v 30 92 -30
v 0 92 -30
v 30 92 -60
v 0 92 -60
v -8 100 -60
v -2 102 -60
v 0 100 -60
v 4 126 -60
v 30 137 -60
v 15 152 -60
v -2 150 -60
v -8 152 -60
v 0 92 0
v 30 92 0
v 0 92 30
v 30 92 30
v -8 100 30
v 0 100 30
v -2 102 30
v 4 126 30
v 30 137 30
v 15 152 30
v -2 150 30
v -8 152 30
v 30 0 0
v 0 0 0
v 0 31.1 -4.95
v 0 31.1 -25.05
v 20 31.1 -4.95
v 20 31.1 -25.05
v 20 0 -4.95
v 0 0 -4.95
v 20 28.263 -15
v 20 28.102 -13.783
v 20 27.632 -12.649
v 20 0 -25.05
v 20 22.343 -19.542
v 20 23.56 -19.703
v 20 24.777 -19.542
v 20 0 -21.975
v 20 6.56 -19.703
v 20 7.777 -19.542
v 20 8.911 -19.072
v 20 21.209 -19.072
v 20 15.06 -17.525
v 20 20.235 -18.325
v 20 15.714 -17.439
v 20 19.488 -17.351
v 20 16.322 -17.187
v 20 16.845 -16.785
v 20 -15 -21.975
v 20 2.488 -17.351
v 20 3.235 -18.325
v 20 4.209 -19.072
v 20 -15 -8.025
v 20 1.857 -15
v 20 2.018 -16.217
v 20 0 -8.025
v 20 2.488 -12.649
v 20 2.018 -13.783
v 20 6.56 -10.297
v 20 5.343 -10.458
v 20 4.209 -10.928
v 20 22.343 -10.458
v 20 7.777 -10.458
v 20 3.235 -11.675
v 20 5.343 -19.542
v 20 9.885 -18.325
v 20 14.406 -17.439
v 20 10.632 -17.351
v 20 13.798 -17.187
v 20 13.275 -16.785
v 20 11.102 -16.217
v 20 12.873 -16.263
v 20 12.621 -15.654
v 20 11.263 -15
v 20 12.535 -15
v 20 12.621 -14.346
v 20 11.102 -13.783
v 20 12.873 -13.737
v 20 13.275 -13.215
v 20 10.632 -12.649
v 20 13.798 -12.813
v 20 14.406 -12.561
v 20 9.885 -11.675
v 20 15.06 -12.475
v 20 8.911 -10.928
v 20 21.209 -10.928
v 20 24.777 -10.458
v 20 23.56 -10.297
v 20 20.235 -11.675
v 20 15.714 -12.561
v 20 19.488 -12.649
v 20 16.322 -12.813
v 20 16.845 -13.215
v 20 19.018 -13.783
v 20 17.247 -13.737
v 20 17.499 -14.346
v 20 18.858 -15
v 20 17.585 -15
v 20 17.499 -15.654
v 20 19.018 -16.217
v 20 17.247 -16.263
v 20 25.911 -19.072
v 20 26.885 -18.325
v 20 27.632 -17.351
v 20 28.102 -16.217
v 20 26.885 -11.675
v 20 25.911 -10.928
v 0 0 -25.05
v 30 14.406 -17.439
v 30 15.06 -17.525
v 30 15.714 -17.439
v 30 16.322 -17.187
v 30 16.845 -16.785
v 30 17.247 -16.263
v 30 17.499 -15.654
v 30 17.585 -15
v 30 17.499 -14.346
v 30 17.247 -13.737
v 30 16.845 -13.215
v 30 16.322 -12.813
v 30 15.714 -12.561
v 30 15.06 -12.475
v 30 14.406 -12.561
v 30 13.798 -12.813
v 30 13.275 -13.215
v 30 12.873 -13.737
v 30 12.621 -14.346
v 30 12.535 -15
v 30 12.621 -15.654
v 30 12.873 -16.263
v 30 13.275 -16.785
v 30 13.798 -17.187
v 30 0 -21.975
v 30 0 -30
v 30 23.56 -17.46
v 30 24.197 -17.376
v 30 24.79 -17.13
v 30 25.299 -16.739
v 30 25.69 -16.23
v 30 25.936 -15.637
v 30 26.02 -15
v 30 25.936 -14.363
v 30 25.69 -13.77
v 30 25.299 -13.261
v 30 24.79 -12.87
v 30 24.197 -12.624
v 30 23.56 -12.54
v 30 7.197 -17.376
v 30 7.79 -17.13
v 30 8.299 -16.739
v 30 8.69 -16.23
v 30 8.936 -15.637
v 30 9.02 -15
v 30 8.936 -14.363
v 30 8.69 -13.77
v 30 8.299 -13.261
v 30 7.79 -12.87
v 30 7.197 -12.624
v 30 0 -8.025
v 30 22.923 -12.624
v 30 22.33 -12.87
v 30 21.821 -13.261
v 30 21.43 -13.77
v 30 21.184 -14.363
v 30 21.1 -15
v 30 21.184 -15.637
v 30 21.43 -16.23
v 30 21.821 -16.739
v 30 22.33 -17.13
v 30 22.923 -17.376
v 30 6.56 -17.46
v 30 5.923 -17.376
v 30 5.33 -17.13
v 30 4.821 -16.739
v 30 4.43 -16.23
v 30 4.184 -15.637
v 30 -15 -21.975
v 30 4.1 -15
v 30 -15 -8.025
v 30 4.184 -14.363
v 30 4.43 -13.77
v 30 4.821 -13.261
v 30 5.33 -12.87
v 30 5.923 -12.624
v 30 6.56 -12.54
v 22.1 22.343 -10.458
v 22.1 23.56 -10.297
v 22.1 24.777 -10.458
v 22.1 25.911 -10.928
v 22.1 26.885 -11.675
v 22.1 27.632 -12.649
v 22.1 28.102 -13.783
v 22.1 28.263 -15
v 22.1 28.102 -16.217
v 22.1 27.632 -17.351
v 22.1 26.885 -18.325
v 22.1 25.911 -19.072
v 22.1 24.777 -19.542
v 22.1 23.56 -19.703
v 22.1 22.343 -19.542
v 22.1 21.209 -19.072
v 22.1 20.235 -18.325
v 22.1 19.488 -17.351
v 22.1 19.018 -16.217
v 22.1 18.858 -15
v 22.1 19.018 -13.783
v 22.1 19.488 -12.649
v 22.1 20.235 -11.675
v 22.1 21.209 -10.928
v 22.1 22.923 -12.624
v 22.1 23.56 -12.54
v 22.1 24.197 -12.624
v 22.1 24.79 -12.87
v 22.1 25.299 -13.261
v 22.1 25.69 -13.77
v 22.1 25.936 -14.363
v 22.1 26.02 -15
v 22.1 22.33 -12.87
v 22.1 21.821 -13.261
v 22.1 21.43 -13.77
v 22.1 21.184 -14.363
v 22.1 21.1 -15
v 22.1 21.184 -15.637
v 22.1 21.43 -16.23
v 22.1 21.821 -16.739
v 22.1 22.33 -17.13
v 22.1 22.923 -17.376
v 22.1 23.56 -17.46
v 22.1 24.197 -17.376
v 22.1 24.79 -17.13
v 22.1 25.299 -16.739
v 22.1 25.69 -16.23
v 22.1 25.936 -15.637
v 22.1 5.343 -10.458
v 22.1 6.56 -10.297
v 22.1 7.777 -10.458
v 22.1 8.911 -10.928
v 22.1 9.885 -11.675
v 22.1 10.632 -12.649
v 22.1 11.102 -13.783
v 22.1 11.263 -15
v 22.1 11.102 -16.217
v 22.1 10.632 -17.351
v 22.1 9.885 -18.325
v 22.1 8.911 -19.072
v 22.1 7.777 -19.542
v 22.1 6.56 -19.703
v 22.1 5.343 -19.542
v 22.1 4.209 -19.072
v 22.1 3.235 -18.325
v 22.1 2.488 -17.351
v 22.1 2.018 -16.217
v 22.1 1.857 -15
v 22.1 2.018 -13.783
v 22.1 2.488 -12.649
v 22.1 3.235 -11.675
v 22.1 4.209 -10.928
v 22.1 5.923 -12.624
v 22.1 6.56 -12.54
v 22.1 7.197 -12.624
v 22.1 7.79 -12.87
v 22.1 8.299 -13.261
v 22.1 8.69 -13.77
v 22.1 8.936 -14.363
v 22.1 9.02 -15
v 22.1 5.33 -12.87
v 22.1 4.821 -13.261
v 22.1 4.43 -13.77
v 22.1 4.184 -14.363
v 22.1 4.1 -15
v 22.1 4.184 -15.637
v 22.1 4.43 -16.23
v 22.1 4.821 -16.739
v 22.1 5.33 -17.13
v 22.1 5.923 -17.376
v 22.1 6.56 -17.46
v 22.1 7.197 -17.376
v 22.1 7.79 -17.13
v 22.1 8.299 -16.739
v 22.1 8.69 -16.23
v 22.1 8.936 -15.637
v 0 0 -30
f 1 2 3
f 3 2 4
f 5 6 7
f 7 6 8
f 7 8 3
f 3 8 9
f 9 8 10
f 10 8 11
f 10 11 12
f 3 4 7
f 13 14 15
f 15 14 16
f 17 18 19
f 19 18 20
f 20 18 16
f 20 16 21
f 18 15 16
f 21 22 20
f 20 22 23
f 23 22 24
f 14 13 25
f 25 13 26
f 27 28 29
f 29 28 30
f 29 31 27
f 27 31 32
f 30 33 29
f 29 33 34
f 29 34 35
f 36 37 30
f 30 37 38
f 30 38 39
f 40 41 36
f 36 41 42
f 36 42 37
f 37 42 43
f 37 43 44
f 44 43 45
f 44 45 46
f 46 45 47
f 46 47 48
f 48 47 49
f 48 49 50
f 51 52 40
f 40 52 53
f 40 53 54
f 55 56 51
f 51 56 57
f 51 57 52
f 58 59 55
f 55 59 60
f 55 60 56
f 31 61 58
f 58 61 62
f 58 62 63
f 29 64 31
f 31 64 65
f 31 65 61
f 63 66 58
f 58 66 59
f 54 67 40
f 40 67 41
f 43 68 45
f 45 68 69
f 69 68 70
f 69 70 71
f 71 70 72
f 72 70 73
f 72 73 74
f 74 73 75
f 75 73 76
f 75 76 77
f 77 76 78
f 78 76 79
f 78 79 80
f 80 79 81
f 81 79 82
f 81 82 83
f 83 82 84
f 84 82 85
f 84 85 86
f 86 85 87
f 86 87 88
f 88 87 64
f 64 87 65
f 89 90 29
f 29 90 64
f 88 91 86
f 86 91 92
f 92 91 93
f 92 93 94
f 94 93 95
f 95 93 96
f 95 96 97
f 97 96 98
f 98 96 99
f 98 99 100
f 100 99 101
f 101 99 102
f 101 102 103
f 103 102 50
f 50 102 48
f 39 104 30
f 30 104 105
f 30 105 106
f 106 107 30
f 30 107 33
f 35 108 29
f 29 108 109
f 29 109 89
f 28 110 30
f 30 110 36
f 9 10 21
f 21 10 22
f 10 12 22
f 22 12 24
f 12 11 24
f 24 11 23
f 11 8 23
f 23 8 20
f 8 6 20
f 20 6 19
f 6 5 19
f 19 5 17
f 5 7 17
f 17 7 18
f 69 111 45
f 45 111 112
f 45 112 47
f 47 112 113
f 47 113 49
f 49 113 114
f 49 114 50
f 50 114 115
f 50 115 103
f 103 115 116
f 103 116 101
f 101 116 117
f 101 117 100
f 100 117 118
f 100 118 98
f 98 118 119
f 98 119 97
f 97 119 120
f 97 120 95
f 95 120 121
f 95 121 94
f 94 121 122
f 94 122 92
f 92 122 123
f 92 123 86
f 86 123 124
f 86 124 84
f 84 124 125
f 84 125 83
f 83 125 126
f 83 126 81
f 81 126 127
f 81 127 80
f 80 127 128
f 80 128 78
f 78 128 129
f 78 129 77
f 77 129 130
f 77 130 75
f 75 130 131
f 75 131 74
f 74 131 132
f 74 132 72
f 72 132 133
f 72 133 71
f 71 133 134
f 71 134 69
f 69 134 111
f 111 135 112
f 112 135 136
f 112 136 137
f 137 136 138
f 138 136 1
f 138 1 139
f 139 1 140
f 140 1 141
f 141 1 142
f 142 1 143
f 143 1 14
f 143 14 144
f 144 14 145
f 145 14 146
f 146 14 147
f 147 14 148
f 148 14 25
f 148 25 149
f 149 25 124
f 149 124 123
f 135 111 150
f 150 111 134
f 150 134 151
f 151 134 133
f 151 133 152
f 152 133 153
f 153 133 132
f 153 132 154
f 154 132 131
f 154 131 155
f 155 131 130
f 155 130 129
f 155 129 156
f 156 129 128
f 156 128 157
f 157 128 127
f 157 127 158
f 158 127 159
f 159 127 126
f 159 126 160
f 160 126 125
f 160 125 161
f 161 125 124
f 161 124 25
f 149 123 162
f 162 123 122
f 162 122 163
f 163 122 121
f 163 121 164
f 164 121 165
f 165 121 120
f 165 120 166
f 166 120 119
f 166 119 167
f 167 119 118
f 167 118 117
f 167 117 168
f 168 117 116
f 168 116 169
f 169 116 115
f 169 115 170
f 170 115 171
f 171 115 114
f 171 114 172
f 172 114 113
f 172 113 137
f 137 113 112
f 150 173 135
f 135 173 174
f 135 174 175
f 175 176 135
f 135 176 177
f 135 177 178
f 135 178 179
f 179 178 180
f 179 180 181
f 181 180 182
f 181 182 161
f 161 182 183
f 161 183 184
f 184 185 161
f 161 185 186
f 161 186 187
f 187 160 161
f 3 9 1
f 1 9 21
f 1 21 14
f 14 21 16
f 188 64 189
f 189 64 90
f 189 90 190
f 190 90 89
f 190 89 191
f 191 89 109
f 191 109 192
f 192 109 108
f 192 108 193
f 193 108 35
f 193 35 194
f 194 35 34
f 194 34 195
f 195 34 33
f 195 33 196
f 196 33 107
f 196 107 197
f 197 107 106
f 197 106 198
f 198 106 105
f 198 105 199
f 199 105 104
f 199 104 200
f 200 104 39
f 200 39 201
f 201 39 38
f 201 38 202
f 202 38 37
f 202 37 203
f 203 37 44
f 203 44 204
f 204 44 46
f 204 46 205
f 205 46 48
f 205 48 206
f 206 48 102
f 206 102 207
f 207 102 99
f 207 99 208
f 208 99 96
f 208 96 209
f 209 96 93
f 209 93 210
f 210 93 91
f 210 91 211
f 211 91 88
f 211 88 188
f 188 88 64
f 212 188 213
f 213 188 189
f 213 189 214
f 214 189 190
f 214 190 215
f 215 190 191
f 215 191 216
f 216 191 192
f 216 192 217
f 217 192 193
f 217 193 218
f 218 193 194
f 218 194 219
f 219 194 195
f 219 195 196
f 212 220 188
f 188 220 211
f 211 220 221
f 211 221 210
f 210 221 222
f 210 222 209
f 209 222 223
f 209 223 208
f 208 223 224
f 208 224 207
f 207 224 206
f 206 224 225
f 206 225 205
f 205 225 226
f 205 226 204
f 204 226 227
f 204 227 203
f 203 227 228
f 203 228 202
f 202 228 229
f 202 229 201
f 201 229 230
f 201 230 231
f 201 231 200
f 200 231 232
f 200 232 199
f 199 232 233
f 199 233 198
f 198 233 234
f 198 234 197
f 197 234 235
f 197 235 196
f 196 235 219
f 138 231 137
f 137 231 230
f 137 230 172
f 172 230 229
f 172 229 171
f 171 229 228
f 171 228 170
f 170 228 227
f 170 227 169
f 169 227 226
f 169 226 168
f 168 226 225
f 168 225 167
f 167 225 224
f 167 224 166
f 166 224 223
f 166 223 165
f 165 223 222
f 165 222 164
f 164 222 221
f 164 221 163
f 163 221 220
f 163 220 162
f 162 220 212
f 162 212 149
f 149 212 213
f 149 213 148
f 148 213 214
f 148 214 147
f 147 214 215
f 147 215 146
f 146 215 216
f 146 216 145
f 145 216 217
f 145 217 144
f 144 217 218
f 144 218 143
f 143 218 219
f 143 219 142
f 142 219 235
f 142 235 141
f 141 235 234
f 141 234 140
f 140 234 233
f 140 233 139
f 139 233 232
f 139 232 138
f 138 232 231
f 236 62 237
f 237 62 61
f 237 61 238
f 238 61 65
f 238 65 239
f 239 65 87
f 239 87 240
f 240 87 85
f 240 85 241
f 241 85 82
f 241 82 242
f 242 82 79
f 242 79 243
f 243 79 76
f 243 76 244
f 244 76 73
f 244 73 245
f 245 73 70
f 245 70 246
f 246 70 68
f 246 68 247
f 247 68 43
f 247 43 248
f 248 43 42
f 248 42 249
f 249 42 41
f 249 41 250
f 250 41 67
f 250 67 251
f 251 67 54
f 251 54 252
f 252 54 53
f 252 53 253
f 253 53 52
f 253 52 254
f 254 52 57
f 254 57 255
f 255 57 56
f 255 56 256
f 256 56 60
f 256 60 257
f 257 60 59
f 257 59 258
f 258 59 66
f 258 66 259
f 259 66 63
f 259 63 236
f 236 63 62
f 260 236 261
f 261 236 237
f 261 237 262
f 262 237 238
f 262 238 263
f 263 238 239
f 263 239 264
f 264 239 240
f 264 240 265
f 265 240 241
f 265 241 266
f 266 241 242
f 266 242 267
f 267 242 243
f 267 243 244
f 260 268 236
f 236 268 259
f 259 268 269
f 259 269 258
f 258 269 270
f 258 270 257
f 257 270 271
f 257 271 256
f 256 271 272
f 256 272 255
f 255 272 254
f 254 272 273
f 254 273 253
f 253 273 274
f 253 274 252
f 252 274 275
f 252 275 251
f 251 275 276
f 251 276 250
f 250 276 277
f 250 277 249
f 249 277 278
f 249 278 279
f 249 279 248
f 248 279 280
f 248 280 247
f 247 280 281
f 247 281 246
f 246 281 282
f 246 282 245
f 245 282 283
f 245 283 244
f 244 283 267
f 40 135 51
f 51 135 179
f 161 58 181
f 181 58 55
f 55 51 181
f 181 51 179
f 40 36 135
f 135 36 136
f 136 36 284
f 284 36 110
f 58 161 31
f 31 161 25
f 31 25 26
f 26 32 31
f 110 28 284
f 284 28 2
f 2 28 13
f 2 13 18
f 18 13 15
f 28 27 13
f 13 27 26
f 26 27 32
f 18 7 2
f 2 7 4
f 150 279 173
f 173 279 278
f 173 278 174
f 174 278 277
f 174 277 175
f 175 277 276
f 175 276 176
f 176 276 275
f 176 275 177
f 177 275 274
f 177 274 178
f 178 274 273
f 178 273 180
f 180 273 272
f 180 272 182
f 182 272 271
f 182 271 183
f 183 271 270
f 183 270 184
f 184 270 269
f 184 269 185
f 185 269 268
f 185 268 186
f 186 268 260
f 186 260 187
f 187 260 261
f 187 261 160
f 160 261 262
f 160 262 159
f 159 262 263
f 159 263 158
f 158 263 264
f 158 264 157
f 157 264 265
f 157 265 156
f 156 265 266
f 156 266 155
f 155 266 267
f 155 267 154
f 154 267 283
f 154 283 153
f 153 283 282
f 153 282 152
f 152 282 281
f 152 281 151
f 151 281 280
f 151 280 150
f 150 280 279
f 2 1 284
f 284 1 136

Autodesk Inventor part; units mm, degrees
ref_plane "YZ Plane" through (0, 0, 0) normal (1, 0, 0) x (0, 1, 0)
ref_plane "XZ Plane" through (0, 0, 0) normal (0, 1, 0) x (-1, 0, 0)
sketch "Sketch1" plane through (0, 0, 0) normal (0, 0, 1) x (1, 0, 0)
  line L0 (0, 0) -> (25, 0)
  line L1 (25, 0) -> (25, 40)
  line L2 (25, 40) -> (0, 40)
  line L3 (0, 40) -> (0, 0)
  dimension "d1" = 25
  dimension "d2" = 40
  dimension "d3" = 25
extrude "Extrusion1" add sketch "Sketch1" against normal blind 30
sketch "Sketch2" plane through (25, 0, 0) normal (1, 0, 0) x (0, 0, -1)
  line L0 (0, 0) -> (30, 0) projected
  circle A0 centre (15, 6.56) radius 2.46
extrude "Extrusion2" cut sketch "Sketch2" against normal blind 30
sketch "Sketch3" plane through (0, 0, 0) normal (-1, 0, 0) x (0, 0, 1)
  line L0 (0, 0) -> (-30, 0) projected
  line L1 (-25.05, 0) -> (-4.95, 0)
  line L2 (-4.95, 0) -> (-4.95, 33.12)
  line L3 (-4.95, 33.12) -> (-25.05, 33.12)
  line L4 (-25.05, 33.12) -> (-25.05, 0)
  dimension "d11" = 20.1
extrude "Extrusion3" cut sketch "Sketch3" against normal blind 20
sketch "Sketch4" plane through (0, 0, 0) normal (0, -1, 0) x (1, 0, 0)
  line L0 (20, -4.95) -> (20, -25.05) projected
  line L1 (20, -15) -> (25, -15)
  line L2 (25, 0) -> (25, -30) projected
  line L3 (20, -8.025) -> (25, -8.025)
  line L4 (25, -8.025) -> (25, -21.975)
  line L5 (25, -21.975) -> (20, -21.975)
  line L6 (20, -21.975) -> (20, -8.025)
  line L7 (20, -8.025) -> (25, -21.975) construction
  line L8 (25, -8.025) -> (20, -21.975) construction
  line L9 (25, -12.54) -> (25, -17.46) projected
  point P0 (0, 0)
  point P1 (22.5, -15)
  dimension "d14" = 13.95
extrude "Extrusion4" add sketch "Sketch4" along normal blind 15
sketch "Sketch5" plane through (20, 0, 0) normal (-1, 0, 0) x (0, 0, 1)
  circle A0 centre (-15, 6.56) radius 2.46 projected
  circle A1 centre (-15, 6.56) radius 4.7025
  circle A2 centre (-15, 6.56) radius 2.46 projected
  circle A3 centre (-15, 6.56) radius 2.46
  point P0 (0, 0)
  dimension "d17" = 9.405
extrude "Extrusion5" cut sketch "Sketch5" against normal blind 2.1
sketch "Sketch6" plane through (25, 0, 0) normal (1, 0, 0) x (0, 0, -1)
  circle A0 centre (15, 6.56) radius 4.7025 projected
  line L0 (15, 6.56) -> (15, 23.56)
  circle A1 centre (15, 23.56) radius 2.46
  point P0 (0, 0)
  dimension "d20" = 17
  dimension "d21" = 4.92
extrude "Extrusion6" cut sketch "Sketch6" against normal blind 10 contours A1
sketch "Sketch7" plane through (20, 0, 0) normal (-1, 0, 0) x (0, 0, 1)
  circle A0 centre (-15, 23.56) radius 2.46 projected
  circle A1 centre (-15, 23.56) radius 4.7025
  point P0 (0, 0)
  dimension "d24" = 9.405
extrude "Extrusion7" cut sketch "Sketch7" against normal blind 2.1
sketch "Sketch9" plane through (25, 0, 0) normal (1, 0, 0) x (0, 0, -1)
  circle A0 centre (15, 6.56) radius 2.46 projected
  circle A1 centre (15, 6.56) radius 2.46
  circle A2 centre (15, 23.56) radius 2.46 projected
  circle A3 centre (15, 23.56) radius 2.46
  line L0 (30, 40) -> (30, 0) projected
  line L1 (30, 0) -> (30, 40)
  line L2 (30, 40) -> (0, 40)
  line L3 (0, 40) -> (0, 0)
  line L4 (0, 0) -> (8.025, 0) projected
  line L5 (21.975, 0) -> (21.975, -15)
  line L6 (21.975, -15) -> (8.025, -15)
  line L7 (8.025, -15) -> (8.025, 0)
  line L8 (0, 0) -> (8.025, 0)
  line L9 (21.975, 0) -> (30, 0)
extrude "Extrusion8" add sketch "Sketch9" along normal blind 5
sketch "Sketch10" plane through (0, 40, 0) normal (0, 1, 0) x (1, 0, 0)
  line L0 (0, 30) -> (30, 30) projected
  line L1 (30, 0) -> (0, 0) projected
  line L2 (0, 30) -> (30, 30)
  line L3 (30, 30) -> (30, 0)
  line L4 (30, 0) -> (0, 0)
  line L5 (0, 0) -> (0, 30)
extrude "Extrusion9" add sketch "Sketch10" along normal blind 30
sketch "Sketch12" plane through (30, 0, 0) normal (1, 0, 0) x (0, 0, -1)
  circle A0 centre (15, 6.56) radius 2.46 projected
  line L0 (15, 6.56) -> (15, 15.06)
  circle A1 centre (15, 15.06) radius 2.525
  point P0 (0, 0)
  dimension "d31" = 8.5
  dimension "d33" = 5.05
extrude "Extrusion10" cut sketch "Sketch12" against normal blind 30 contours A1
sketch "Sketch14" plane through (0, 0, 0) normal (0, 0, 1) x (1, 0, 0)
  line L0 (30, 70) -> (0, 70) projected
  line L1 (0, 100) -> (-8, 100)
  line L2 (30, 0) -> (30, 70) projected
  line L3 (30, 118) -> (30, 70)
  line L4 (30, 105) -> (30, 100)
  line L5 (0, 70) -> (30, 70) projected
  line L6 (0, 70) -> (0, 100)
  line L7 (30, 122.5) -> (30, 118)
  line L8 (-2, 150) -> (-8, 152)
  line L9 (-2, 102) -> (-8, 100)
  line L10 (-2, 102) -> (4, 126)
  line L11 (4, 126) -> (-2, 150)
  line L12 (-8, 152) -> (15, 152)
  line L13 (30, 137) -> (15, 152)
  line L14 (30, 122.5) -> (30, 137)
  point P0 (0, 0)
  dimension "d47" = 30
extrude "Extrusion12" add sketch "Sketch14" against normal blind 30
sketch "Sketch15" plane through (0, 0, -25.05) normal (-1, 0, 0) x (0, 0, 1)
  line L0 (0, 33.12) -> (20.1, 33.12) projected
  line L1 (20.1, 33.12) -> (20.1, 0) projected
  line L2 (0, 33.12) -> (20.1, 33.12)
  line L3 (20.1, 33.12) -> (20.1, 31.1)
  line L4 (20.1, 31.1) -> (0, 31.1)
  line L5 (0, 31.1) -> (0, 33.12)
  point P0 (25.05, 0)
  dimension "d57" = 2.02
extrude "Extrusion13" add sketch "Sketch15" against normal blind 20
sketch "Sketch25" plane through (0, 0, 0) normal (0, 0, 1) x (1, 0, 0)
  point P0 (0, 0)
sketch "Sketch26" plane through (0, 0, 0) normal (0, 0, 1) x (1, 0, 0)
  line L0 (-8, 100) -> (0, 100) projected
  line L1 (0, 100) -> (-8, 100)
  line L2 (-8, 100) -> (-2, 102) projected
  line L3 (-8, 100) -> (-2, 102)
  line L4 (-2, 102) -> (4, 126) projected
  line L5 (-2, 102) -> (4, 126)
  line L6 (4, 126) -> (-2, 150) projected
  line L7 (4, 126) -> (-2, 150)
  line L8 (-8, 152) -> (-2, 150) projected
  line L9 (-2, 150) -> (-8, 152)
  line L10 (15, 152) -> (-8, 152) projected
  line L11 (-8, 152) -> (15, 152)
  line L12 (30, 137) -> (15, 152) projected
  line L13 (15, 152) -> (30, 137)
  line L14 (30, 137) -> (30, 92)
  line L15 (30, 0) -> (30, 137) projected
  line L16 (30, 92) -> (0, 92)
  line L17 (0, 0) -> (0, 100) projected
  line L18 (0, 100) -> (0, 92)
  dimension "d93" = 45
extrude "Extrusion14" add sketch "Sketch26" along normal blind 30
ref_plane "Work Plane1" through (0, 0, -15) normal (0, 0, 1) x (1, 0, 0)
mirror "Mirror1" about plane through (0, 0, -15) normal (0, 0, 1) of "Extrusion14"
properties part number "48mm_x_90mm"
